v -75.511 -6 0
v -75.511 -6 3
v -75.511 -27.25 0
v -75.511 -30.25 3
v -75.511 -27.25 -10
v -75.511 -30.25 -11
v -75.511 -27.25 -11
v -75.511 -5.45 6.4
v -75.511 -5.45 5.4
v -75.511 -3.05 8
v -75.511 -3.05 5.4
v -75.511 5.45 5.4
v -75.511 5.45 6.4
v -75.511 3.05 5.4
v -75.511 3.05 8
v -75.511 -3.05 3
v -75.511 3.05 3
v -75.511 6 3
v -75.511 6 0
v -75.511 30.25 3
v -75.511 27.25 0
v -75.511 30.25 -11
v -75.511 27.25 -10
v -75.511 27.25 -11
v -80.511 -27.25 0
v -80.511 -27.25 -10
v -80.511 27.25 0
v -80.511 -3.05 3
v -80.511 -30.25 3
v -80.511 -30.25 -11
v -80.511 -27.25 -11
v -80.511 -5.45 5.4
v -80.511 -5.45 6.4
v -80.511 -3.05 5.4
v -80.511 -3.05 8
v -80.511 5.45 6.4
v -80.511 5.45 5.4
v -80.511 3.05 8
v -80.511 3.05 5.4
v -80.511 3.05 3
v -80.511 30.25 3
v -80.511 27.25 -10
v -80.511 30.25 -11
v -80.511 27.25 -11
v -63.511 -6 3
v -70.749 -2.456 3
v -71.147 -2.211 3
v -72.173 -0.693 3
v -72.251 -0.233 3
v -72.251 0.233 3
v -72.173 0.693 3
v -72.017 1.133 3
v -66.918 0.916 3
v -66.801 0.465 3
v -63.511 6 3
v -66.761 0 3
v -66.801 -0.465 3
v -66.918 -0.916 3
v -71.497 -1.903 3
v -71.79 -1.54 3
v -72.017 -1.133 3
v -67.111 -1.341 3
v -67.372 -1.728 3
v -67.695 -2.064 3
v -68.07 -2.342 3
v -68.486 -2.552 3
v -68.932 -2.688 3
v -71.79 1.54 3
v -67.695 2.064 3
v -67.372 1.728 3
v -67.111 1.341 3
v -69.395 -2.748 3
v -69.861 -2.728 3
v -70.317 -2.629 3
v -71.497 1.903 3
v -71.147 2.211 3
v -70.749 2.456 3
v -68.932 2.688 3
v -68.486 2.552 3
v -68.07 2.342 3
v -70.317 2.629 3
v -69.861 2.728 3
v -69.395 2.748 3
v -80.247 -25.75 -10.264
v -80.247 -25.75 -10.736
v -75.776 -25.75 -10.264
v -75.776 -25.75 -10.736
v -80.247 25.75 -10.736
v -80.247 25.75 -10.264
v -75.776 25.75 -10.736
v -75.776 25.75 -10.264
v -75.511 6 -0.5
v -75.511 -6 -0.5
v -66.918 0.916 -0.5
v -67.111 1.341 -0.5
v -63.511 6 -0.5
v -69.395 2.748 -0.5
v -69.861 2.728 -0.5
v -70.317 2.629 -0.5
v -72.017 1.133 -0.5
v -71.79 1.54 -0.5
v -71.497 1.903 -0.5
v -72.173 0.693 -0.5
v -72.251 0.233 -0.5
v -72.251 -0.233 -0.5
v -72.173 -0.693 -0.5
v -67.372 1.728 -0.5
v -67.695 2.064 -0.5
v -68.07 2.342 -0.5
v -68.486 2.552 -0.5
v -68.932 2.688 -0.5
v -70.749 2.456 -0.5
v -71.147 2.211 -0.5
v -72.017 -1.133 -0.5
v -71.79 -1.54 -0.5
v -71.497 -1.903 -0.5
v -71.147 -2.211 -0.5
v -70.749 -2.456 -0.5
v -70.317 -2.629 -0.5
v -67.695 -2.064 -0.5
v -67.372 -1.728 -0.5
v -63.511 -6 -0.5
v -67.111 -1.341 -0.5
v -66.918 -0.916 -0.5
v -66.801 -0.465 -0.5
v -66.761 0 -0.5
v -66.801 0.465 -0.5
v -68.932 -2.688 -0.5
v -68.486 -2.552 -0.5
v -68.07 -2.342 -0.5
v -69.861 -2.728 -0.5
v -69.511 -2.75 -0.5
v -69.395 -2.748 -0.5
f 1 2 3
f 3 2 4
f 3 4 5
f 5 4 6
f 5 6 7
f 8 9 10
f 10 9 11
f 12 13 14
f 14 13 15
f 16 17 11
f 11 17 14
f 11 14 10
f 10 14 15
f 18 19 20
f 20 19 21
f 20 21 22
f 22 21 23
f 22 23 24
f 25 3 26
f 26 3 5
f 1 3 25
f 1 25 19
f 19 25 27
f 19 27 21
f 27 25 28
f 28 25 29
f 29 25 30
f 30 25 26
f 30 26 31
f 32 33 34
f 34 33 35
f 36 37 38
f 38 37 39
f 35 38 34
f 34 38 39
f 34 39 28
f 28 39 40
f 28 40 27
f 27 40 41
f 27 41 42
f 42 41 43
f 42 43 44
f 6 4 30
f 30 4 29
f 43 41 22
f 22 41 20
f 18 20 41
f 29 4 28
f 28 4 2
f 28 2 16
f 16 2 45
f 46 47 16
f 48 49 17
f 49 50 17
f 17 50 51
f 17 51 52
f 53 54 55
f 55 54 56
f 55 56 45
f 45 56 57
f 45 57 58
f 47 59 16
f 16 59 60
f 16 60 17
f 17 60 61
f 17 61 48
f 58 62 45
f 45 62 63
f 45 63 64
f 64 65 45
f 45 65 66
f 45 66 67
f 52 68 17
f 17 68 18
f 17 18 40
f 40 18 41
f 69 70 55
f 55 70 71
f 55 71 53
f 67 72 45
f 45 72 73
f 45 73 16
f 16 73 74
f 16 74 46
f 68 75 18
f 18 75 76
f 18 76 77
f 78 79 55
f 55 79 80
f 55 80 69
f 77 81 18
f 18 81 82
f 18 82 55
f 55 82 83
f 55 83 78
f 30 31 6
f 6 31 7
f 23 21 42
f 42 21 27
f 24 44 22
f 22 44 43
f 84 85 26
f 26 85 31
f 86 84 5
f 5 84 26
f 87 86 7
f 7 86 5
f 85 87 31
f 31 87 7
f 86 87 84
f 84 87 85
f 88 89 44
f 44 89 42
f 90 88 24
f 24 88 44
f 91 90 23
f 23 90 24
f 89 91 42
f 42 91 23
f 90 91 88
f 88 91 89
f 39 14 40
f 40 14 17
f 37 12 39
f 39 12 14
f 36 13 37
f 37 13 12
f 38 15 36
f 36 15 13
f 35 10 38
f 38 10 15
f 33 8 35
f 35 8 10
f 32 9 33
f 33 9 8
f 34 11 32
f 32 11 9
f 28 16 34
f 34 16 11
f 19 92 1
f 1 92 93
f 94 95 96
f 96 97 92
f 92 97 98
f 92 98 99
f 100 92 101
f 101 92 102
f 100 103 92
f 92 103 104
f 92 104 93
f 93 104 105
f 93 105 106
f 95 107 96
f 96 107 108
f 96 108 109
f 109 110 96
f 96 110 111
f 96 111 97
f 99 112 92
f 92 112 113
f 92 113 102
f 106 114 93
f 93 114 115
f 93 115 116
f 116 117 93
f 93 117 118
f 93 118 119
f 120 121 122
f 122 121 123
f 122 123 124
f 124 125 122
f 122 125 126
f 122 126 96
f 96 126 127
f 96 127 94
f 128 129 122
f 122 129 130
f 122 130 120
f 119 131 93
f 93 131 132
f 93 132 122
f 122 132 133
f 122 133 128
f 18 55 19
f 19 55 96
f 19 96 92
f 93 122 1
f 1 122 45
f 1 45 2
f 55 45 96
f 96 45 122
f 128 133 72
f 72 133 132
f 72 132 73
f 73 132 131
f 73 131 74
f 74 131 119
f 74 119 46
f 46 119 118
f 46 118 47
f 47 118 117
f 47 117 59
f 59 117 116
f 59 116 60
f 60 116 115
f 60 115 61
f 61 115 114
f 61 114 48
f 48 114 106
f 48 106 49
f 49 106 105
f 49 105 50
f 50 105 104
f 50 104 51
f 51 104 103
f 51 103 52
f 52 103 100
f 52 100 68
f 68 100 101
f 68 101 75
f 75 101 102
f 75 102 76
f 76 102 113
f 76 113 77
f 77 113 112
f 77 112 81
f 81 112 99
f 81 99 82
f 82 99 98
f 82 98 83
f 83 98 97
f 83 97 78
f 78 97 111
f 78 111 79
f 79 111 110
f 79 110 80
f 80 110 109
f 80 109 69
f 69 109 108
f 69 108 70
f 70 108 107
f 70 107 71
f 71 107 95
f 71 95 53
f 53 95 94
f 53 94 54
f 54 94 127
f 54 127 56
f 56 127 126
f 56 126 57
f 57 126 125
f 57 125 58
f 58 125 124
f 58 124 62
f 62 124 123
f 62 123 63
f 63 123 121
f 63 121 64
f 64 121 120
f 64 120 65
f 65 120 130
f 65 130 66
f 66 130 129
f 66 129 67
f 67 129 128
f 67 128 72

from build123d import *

# Parameters (mm, degrees)
SKETCH1_W           = 5
SKETCH1_H           = 54.5
SKETCH1_H_2         = 3
BOSS_EXTRUDE3_DEPTH = 3
SKETCH1_5_W         = 5
SKETCH1_5_H         = 3
BOSS_EXTRUDE4_DEPTH = 11
SKETCH3_W           = 5
SKETCH3_H           = 1
BOSS_EXTRUDE5_DEPTH = 1.5
BOSS_EXTRUDE5_TAPER = 10
BOSS_EXTRUDE6_DEPTH = 5
SKETCH34_W          = 3.5
SKETCH34_H          = 12
BOSS_EXTRUDE2_DEPTH = 12
CUT_EXTRUDE2_REACH  = 46.911
SKETCH4_R           = 2.75


with BuildPart() as part:
    # Sketch1 → Boss-Extrude3 (new body)
    with BuildSketch(Plane.XY):
        with Locations((-78.011372184, 0)):
            Rectangle(SKETCH1_W, SKETCH1_H)
        with Locations((-78.011372184, -28.75)):
            Rectangle(SKETCH1_W, SKETCH1_H_2)
        with Locations((-78.011372184, 28.75)):
            Rectangle(SKETCH1_W, SKETCH1_H_2)
    extrude(amount=BOSS_EXTRUDE3_DEPTH)

    # Sketch1<5> → Boss-Extrude4 (add)
    with BuildSketch(Plane.XY):
        with Locations((-78.011372184, -28.75)):
            Rectangle(SKETCH1_5_W, SKETCH1_5_H)
        with Locations((-78.011372184, 28.75)):
            Rectangle(SKETCH1_5_W, SKETCH1_5_H)
    extrude(amount=-BOSS_EXTRUDE4_DEPTH)

    # Sketch3 → Boss-Extrude5 (add)
    with BuildSketch(Plane(origin=(0, -27.25, 0), x_dir=(1, 0, 0), z_dir=(0, 1, 0))):
        with Locations((-78.011372184, 10.5)):
            Rectangle(SKETCH3_W, SKETCH3_H)
    boss_extrude5 = extrude(amount=BOSS_EXTRUDE5_DEPTH, taper=BOSS_EXTRUDE5_TAPER)

    # Mirror1: Boss-Extrude5 across plane
    add(boss_extrude5.mirror(Plane.ZX))

    # Sketch5 → Boss-Extrude6 (add)
    with BuildSketch(Plane(origin=(-75.511372184, 0, 0), x_dir=(0, 0, -1), z_dir=(1, 0, 0))):
        Polygon((-3, 9.5), (-2, 9.5), (-2, -9.5), (-3, -9.5), (-3, -3.05), (-5.4, -3.05), (-5.4, -5.45), (-6.4, -5.45), (-8, -3.05), (-8, 3.05), (-6.4, 5.45), (-5.4, 5.45), (-5.4, 3.05), (-3, 3.05), align=None)
    extrude(amount=-BOSS_EXTRUDE6_DEPTH)

    # Sketch34 → Boss-Extrude2 (add)
    with BuildSketch(Plane(origin=(-75.511372184, -10.701352109, -2.52337685), x_dir=(0, 0, -1), z_dir=(1, 0, 0))):
        with Locations((-3.77337685, 10.701352109)):
            Rectangle(SKETCH34_W, SKETCH34_H)
    extrude(amount=BOSS_EXTRUDE2_DEPTH)

    # Sketch4 → Cut-Extrude2 (cut, up to next)
    with BuildSketch(Plane(origin=(-75.511372184, -10.701352109, 3), x_dir=(1, 0, 0), z_dir=(0, 0, 1)), mode=Mode.PRIVATE) as cut_extrude2_sk1:
        with Locations((6, 10.701352109)):
            Circle(SKETCH4_R)
    cut_extrude2_tool1 = extrude(cut_extrude2_sk1.sketch, amount=-CUT_EXTRUDE2_REACH, mode=Mode.PRIVATE) & part.part
    add(cut_extrude2_tool1.solids().sort_by_distance((-69.511372, 0, 3))[0], mode=Mode.SUBTRACT)


solid = part.part
